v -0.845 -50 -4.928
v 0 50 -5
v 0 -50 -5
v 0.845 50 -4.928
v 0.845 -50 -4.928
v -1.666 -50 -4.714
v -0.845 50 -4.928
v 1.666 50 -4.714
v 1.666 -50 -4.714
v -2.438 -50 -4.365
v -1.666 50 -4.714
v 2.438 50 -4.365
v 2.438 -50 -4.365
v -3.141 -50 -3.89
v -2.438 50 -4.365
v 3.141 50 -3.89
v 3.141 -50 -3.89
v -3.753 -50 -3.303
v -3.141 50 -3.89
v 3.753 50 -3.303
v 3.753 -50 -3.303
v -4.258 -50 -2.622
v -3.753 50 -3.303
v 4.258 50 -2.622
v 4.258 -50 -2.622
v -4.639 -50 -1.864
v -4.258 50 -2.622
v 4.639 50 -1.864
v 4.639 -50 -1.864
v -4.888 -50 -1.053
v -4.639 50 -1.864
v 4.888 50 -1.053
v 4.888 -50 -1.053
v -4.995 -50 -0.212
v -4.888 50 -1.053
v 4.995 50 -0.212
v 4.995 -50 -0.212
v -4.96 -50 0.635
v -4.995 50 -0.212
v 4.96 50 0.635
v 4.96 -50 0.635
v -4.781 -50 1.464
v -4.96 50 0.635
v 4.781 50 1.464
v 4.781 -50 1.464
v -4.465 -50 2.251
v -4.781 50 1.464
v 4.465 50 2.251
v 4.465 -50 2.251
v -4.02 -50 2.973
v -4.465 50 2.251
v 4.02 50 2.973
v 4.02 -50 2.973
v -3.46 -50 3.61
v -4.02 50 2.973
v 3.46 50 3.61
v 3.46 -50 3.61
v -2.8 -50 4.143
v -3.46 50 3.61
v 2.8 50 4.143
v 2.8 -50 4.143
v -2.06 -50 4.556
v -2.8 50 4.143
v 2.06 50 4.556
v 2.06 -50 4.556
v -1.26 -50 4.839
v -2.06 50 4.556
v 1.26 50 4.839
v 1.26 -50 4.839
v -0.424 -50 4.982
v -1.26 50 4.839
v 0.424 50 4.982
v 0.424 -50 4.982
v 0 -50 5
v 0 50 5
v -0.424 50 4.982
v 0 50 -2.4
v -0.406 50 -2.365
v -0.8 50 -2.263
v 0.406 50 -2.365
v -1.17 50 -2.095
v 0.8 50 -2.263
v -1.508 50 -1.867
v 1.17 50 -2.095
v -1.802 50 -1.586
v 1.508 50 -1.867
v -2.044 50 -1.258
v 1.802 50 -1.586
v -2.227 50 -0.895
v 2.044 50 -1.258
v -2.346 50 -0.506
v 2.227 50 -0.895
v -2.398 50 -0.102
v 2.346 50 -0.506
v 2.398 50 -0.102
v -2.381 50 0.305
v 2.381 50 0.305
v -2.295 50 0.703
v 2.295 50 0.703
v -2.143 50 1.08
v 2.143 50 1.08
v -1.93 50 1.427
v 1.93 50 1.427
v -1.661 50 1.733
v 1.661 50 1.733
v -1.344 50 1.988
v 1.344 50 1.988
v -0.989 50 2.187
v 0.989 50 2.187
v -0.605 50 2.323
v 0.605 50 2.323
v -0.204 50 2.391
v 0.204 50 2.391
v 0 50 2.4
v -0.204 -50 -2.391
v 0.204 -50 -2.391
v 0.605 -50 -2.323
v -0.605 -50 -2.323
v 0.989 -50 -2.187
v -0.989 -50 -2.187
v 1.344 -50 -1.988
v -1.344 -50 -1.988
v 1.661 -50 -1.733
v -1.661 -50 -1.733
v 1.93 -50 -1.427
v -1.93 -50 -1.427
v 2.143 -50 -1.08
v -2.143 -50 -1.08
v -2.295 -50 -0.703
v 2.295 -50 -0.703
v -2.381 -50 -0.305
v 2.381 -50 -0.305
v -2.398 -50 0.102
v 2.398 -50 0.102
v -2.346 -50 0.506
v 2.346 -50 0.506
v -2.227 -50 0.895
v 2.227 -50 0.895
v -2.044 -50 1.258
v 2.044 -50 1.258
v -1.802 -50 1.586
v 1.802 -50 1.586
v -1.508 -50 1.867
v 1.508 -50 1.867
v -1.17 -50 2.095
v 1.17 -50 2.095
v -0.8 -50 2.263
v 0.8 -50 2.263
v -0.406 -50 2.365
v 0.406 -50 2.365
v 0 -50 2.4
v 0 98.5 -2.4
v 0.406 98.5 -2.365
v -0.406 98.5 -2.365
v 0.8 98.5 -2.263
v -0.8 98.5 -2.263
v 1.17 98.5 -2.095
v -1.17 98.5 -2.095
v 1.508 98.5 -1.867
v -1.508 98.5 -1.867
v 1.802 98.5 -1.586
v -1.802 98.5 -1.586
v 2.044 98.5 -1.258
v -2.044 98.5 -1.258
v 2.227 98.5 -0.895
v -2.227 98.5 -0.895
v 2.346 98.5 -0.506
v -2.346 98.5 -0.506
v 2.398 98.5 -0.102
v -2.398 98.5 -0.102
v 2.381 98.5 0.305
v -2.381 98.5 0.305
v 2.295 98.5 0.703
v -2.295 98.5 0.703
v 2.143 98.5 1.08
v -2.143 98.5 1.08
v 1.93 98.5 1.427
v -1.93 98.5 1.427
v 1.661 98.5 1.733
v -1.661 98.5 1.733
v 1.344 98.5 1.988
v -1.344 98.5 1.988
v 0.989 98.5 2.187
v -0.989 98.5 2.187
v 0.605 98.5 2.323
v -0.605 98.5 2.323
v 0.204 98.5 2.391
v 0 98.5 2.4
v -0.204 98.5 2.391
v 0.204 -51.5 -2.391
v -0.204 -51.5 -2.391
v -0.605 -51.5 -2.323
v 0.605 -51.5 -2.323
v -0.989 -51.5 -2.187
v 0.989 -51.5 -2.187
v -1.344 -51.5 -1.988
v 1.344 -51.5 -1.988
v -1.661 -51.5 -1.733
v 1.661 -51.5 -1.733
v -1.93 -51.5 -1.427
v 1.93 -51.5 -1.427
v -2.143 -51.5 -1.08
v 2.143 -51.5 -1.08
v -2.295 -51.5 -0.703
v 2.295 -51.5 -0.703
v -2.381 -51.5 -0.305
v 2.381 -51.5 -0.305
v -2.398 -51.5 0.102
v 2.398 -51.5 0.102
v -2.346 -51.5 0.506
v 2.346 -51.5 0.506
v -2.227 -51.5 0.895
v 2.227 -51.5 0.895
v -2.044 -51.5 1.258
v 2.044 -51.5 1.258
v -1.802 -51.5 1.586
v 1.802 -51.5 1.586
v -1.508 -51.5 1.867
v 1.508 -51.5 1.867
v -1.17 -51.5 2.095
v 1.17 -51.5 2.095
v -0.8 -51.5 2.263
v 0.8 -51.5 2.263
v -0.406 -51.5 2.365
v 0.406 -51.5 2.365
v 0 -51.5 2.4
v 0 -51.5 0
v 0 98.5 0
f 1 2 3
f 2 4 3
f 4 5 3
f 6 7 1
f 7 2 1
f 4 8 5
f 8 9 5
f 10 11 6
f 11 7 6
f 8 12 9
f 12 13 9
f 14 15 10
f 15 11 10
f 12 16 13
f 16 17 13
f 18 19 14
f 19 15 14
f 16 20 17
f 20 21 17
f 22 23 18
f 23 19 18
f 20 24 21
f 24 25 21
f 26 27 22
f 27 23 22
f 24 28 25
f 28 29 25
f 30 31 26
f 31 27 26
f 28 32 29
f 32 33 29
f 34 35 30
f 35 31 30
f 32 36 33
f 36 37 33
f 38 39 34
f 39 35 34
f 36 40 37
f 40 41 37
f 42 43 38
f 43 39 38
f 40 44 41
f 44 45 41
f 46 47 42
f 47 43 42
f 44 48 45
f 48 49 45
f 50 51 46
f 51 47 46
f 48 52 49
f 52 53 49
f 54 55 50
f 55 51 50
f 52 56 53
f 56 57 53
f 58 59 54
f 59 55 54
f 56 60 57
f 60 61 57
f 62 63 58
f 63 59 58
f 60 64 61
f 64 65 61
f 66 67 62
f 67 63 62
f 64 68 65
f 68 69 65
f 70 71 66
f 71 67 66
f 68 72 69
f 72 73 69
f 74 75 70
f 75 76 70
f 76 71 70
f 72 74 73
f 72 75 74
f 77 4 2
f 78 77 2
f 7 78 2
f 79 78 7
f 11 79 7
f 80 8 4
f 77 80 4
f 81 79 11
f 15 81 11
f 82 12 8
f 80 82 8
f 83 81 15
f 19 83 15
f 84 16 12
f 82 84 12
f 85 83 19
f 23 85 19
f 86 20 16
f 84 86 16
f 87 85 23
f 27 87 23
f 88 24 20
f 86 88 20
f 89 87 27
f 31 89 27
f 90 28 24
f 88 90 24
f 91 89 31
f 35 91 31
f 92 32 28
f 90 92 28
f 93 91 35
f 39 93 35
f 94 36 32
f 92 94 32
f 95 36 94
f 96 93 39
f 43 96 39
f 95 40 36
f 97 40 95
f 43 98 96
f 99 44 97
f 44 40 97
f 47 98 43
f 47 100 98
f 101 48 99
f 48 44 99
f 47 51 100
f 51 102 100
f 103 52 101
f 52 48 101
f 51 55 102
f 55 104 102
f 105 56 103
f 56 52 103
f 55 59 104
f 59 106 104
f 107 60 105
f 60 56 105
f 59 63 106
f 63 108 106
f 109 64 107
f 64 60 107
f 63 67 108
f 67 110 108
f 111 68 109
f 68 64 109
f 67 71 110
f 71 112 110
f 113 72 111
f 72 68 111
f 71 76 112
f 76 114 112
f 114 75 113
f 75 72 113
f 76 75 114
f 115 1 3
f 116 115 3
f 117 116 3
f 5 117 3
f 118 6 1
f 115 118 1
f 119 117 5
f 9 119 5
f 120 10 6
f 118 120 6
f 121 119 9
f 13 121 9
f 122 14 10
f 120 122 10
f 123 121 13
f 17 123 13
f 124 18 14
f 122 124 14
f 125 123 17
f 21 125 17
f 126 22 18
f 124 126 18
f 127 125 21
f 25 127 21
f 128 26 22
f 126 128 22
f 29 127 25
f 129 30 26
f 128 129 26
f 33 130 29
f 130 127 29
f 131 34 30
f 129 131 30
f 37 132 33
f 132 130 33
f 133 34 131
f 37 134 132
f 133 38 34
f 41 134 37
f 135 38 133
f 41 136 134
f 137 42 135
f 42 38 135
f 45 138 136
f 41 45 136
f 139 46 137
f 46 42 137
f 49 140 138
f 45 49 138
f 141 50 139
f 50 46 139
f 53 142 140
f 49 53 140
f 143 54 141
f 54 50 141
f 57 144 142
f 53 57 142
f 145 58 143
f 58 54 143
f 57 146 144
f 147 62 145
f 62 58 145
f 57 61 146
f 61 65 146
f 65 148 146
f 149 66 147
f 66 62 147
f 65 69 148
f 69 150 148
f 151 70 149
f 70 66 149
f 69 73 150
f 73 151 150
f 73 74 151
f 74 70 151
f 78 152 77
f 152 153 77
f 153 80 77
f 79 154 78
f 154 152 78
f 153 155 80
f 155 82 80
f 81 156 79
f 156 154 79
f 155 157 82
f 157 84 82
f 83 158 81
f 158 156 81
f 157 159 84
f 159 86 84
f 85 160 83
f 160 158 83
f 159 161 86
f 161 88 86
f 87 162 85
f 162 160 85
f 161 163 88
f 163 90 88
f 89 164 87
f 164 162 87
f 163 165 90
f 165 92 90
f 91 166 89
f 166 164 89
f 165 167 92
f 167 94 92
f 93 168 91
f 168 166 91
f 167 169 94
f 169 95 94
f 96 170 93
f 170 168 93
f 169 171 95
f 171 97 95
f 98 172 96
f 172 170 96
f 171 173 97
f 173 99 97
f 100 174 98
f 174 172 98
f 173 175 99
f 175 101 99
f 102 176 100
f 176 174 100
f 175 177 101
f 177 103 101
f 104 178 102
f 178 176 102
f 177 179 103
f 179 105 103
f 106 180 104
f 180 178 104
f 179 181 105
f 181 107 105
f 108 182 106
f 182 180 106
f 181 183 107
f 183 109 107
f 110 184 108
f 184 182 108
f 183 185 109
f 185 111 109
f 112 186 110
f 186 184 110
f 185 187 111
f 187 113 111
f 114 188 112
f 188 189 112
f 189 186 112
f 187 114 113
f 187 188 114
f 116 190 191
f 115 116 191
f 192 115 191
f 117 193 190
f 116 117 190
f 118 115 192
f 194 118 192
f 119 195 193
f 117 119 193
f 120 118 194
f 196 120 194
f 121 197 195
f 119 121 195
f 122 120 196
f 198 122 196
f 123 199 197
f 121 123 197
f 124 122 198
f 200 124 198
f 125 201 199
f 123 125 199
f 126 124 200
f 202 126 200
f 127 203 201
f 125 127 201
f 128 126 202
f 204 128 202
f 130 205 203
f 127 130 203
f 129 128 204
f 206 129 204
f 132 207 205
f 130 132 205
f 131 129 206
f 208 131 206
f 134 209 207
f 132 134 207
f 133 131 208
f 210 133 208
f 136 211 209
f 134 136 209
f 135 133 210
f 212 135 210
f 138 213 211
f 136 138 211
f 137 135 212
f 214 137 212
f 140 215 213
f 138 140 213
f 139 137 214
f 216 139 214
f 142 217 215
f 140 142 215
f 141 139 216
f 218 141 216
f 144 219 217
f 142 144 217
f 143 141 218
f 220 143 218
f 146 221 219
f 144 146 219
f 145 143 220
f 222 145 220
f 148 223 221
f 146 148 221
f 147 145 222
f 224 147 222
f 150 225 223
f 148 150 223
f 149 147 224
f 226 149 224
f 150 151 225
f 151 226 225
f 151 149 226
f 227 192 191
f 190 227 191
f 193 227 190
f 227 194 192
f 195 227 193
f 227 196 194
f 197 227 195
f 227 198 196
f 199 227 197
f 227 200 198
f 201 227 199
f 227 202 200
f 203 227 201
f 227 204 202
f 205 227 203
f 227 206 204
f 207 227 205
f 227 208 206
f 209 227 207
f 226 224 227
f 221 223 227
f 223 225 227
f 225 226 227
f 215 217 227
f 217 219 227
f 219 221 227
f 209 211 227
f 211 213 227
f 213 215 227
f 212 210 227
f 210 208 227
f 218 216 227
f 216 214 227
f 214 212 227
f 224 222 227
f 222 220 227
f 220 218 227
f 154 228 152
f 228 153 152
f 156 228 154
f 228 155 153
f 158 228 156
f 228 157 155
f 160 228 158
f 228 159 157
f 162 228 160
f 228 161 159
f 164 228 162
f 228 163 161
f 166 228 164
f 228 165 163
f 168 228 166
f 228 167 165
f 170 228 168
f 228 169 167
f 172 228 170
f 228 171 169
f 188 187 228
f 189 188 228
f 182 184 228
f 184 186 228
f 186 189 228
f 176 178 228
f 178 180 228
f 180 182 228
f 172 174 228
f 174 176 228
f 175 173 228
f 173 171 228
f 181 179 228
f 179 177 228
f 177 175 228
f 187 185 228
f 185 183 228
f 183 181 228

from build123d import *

# Parameters (mm, degrees)
SKETCH1_R           = 5
BOSS_EXTRUDE1_DEPTH = 50
SKETCH2_R           = 2.4
BOSS_EXTRUDE2_DEPTH = 1.5
SKETCH3_R           = 2.4
BOSS_EXTRUDE3_DEPTH = 47


with BuildPart() as part:
    # Sketch1 → Boss-Extrude1 (new, symmetric)
    with BuildSketch(Plane(origin=(0, 0, 0), x_dir=(1, 0, 0), z_dir=(0, 1, 0))):
        with Locations(Location((0, 0, 0), (0, 0, 270))):
            Circle(SKETCH1_R)
    extrude(amount=BOSS_EXTRUDE1_DEPTH, both=True)

    # Sketch2 → Boss-Extrude2 (add, symmetric)
    with BuildSketch(Plane(origin=(0, 50, 0), x_dir=(1, 0, 0), z_dir=(0, 1, 0))):
        with Locations(Location((0, 0, 0), (0, 0, 270))):
            Circle(SKETCH2_R)
    boss_extrude2 = extrude(amount=BOSS_EXTRUDE2_DEPTH, both=True)

    # Mirror1: Boss-Extrude2 across plane
    add(boss_extrude2.mirror(Plane.ZX))

    # Sketch3 → Boss-Extrude3 (add)
    with BuildSketch(Plane(origin=(0, 51.5, 0), x_dir=(1, 0, 0), z_dir=(0, 1, 0))):
        with Locations(Location((0, 0, 0), (0, 0, 270))):
            Circle(SKETCH3_R)
    extrude(amount=BOSS_EXTRUDE3_DEPTH)


solid = part.part
